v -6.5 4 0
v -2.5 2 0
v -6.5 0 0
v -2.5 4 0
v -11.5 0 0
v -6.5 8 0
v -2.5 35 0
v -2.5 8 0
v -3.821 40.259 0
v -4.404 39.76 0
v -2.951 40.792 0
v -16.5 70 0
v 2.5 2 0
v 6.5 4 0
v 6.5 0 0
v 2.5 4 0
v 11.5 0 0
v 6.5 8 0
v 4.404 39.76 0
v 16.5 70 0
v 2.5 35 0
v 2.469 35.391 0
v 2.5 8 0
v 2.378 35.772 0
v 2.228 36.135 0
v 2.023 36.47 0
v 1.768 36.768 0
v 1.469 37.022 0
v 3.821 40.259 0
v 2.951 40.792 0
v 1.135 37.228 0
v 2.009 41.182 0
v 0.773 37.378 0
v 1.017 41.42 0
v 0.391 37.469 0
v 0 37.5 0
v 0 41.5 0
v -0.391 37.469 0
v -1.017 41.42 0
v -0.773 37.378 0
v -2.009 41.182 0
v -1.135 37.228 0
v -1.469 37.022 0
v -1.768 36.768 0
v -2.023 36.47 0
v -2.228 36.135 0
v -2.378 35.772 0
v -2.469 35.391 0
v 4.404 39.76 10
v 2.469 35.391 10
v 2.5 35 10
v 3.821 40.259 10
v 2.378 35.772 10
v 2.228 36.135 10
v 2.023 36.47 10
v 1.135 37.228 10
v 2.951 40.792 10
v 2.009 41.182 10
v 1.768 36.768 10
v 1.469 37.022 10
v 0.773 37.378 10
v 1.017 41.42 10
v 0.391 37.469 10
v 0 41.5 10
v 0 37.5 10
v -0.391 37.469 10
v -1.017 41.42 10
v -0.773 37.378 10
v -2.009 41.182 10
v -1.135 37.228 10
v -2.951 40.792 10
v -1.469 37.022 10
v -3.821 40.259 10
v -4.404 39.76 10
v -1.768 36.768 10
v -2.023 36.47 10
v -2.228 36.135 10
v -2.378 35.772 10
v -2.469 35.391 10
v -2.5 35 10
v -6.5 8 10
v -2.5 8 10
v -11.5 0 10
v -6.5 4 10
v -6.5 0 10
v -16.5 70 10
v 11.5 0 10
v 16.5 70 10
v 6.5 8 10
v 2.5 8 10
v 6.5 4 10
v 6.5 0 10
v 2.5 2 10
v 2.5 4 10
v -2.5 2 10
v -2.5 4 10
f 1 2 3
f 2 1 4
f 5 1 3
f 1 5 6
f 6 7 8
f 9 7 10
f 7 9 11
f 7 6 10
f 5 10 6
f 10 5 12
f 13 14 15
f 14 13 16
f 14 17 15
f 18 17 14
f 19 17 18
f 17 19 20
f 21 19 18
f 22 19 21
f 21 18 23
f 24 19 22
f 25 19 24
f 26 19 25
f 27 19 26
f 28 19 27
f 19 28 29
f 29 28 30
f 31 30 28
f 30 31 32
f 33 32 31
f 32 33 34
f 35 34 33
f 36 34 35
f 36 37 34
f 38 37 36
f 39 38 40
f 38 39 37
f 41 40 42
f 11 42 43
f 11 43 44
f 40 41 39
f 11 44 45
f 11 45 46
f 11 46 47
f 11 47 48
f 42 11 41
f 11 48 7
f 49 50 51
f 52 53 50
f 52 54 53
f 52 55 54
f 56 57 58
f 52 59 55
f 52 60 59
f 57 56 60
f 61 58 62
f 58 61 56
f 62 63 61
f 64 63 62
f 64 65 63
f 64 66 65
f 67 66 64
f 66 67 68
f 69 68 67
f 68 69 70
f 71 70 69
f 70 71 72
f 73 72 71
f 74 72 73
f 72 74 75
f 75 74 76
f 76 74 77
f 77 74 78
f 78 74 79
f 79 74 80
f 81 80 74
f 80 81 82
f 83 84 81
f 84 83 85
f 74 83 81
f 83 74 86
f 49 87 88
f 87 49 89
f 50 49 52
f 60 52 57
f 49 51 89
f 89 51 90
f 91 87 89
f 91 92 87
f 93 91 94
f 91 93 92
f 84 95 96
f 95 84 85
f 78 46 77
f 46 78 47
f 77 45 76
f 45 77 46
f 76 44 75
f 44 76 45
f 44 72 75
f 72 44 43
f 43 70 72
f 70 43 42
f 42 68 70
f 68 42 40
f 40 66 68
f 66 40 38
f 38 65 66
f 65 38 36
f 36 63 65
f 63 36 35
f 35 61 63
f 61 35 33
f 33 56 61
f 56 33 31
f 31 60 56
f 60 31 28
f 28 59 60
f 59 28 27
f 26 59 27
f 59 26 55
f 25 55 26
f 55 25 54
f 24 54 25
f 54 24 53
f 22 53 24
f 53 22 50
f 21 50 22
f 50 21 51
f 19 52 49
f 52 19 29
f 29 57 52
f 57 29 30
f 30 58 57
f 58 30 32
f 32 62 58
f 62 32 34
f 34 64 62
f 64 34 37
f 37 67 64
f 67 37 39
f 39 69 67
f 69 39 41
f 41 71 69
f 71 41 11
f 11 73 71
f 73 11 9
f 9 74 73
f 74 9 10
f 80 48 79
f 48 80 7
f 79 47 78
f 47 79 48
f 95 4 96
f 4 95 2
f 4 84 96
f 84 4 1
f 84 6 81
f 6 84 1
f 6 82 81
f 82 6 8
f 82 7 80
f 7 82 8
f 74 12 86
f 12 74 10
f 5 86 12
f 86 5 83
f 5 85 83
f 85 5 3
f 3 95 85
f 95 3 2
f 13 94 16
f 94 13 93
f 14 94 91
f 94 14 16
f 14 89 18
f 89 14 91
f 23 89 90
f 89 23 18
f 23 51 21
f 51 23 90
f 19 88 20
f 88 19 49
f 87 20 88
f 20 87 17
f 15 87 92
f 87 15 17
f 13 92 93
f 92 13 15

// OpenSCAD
$fn = 40;


tooth_depth = 4;
height = 70;
beam_thick = -10;
thick = 10;

module clamp_leg(){	
	linear_extrude(thick)
	polygon(points=[
	[0,0],
	[tooth_depth,tooth_depth/2],
	[tooth_depth,tooth_depth],
	[0,tooth_depth],
	[0, 2*tooth_depth],
	[tooth_depth, 2*tooth_depth],
	[tooth_depth, height/2],
	[beam_thick, height],
	[beam_thick/2, 0]
	]);
	
}

linear_extrude(thick)
translate([0,height/2,0])
	difference(){
		circle(span/2);
		circle(span/2-4);
		translate([0,-span/2,0])
		square([span, span], center=true);
	}

span = 13;



translate([-span/2,0,0])
clamp_leg();

translate([span/2,0,0])
mirror([1,0,0])
clamp_leg();
